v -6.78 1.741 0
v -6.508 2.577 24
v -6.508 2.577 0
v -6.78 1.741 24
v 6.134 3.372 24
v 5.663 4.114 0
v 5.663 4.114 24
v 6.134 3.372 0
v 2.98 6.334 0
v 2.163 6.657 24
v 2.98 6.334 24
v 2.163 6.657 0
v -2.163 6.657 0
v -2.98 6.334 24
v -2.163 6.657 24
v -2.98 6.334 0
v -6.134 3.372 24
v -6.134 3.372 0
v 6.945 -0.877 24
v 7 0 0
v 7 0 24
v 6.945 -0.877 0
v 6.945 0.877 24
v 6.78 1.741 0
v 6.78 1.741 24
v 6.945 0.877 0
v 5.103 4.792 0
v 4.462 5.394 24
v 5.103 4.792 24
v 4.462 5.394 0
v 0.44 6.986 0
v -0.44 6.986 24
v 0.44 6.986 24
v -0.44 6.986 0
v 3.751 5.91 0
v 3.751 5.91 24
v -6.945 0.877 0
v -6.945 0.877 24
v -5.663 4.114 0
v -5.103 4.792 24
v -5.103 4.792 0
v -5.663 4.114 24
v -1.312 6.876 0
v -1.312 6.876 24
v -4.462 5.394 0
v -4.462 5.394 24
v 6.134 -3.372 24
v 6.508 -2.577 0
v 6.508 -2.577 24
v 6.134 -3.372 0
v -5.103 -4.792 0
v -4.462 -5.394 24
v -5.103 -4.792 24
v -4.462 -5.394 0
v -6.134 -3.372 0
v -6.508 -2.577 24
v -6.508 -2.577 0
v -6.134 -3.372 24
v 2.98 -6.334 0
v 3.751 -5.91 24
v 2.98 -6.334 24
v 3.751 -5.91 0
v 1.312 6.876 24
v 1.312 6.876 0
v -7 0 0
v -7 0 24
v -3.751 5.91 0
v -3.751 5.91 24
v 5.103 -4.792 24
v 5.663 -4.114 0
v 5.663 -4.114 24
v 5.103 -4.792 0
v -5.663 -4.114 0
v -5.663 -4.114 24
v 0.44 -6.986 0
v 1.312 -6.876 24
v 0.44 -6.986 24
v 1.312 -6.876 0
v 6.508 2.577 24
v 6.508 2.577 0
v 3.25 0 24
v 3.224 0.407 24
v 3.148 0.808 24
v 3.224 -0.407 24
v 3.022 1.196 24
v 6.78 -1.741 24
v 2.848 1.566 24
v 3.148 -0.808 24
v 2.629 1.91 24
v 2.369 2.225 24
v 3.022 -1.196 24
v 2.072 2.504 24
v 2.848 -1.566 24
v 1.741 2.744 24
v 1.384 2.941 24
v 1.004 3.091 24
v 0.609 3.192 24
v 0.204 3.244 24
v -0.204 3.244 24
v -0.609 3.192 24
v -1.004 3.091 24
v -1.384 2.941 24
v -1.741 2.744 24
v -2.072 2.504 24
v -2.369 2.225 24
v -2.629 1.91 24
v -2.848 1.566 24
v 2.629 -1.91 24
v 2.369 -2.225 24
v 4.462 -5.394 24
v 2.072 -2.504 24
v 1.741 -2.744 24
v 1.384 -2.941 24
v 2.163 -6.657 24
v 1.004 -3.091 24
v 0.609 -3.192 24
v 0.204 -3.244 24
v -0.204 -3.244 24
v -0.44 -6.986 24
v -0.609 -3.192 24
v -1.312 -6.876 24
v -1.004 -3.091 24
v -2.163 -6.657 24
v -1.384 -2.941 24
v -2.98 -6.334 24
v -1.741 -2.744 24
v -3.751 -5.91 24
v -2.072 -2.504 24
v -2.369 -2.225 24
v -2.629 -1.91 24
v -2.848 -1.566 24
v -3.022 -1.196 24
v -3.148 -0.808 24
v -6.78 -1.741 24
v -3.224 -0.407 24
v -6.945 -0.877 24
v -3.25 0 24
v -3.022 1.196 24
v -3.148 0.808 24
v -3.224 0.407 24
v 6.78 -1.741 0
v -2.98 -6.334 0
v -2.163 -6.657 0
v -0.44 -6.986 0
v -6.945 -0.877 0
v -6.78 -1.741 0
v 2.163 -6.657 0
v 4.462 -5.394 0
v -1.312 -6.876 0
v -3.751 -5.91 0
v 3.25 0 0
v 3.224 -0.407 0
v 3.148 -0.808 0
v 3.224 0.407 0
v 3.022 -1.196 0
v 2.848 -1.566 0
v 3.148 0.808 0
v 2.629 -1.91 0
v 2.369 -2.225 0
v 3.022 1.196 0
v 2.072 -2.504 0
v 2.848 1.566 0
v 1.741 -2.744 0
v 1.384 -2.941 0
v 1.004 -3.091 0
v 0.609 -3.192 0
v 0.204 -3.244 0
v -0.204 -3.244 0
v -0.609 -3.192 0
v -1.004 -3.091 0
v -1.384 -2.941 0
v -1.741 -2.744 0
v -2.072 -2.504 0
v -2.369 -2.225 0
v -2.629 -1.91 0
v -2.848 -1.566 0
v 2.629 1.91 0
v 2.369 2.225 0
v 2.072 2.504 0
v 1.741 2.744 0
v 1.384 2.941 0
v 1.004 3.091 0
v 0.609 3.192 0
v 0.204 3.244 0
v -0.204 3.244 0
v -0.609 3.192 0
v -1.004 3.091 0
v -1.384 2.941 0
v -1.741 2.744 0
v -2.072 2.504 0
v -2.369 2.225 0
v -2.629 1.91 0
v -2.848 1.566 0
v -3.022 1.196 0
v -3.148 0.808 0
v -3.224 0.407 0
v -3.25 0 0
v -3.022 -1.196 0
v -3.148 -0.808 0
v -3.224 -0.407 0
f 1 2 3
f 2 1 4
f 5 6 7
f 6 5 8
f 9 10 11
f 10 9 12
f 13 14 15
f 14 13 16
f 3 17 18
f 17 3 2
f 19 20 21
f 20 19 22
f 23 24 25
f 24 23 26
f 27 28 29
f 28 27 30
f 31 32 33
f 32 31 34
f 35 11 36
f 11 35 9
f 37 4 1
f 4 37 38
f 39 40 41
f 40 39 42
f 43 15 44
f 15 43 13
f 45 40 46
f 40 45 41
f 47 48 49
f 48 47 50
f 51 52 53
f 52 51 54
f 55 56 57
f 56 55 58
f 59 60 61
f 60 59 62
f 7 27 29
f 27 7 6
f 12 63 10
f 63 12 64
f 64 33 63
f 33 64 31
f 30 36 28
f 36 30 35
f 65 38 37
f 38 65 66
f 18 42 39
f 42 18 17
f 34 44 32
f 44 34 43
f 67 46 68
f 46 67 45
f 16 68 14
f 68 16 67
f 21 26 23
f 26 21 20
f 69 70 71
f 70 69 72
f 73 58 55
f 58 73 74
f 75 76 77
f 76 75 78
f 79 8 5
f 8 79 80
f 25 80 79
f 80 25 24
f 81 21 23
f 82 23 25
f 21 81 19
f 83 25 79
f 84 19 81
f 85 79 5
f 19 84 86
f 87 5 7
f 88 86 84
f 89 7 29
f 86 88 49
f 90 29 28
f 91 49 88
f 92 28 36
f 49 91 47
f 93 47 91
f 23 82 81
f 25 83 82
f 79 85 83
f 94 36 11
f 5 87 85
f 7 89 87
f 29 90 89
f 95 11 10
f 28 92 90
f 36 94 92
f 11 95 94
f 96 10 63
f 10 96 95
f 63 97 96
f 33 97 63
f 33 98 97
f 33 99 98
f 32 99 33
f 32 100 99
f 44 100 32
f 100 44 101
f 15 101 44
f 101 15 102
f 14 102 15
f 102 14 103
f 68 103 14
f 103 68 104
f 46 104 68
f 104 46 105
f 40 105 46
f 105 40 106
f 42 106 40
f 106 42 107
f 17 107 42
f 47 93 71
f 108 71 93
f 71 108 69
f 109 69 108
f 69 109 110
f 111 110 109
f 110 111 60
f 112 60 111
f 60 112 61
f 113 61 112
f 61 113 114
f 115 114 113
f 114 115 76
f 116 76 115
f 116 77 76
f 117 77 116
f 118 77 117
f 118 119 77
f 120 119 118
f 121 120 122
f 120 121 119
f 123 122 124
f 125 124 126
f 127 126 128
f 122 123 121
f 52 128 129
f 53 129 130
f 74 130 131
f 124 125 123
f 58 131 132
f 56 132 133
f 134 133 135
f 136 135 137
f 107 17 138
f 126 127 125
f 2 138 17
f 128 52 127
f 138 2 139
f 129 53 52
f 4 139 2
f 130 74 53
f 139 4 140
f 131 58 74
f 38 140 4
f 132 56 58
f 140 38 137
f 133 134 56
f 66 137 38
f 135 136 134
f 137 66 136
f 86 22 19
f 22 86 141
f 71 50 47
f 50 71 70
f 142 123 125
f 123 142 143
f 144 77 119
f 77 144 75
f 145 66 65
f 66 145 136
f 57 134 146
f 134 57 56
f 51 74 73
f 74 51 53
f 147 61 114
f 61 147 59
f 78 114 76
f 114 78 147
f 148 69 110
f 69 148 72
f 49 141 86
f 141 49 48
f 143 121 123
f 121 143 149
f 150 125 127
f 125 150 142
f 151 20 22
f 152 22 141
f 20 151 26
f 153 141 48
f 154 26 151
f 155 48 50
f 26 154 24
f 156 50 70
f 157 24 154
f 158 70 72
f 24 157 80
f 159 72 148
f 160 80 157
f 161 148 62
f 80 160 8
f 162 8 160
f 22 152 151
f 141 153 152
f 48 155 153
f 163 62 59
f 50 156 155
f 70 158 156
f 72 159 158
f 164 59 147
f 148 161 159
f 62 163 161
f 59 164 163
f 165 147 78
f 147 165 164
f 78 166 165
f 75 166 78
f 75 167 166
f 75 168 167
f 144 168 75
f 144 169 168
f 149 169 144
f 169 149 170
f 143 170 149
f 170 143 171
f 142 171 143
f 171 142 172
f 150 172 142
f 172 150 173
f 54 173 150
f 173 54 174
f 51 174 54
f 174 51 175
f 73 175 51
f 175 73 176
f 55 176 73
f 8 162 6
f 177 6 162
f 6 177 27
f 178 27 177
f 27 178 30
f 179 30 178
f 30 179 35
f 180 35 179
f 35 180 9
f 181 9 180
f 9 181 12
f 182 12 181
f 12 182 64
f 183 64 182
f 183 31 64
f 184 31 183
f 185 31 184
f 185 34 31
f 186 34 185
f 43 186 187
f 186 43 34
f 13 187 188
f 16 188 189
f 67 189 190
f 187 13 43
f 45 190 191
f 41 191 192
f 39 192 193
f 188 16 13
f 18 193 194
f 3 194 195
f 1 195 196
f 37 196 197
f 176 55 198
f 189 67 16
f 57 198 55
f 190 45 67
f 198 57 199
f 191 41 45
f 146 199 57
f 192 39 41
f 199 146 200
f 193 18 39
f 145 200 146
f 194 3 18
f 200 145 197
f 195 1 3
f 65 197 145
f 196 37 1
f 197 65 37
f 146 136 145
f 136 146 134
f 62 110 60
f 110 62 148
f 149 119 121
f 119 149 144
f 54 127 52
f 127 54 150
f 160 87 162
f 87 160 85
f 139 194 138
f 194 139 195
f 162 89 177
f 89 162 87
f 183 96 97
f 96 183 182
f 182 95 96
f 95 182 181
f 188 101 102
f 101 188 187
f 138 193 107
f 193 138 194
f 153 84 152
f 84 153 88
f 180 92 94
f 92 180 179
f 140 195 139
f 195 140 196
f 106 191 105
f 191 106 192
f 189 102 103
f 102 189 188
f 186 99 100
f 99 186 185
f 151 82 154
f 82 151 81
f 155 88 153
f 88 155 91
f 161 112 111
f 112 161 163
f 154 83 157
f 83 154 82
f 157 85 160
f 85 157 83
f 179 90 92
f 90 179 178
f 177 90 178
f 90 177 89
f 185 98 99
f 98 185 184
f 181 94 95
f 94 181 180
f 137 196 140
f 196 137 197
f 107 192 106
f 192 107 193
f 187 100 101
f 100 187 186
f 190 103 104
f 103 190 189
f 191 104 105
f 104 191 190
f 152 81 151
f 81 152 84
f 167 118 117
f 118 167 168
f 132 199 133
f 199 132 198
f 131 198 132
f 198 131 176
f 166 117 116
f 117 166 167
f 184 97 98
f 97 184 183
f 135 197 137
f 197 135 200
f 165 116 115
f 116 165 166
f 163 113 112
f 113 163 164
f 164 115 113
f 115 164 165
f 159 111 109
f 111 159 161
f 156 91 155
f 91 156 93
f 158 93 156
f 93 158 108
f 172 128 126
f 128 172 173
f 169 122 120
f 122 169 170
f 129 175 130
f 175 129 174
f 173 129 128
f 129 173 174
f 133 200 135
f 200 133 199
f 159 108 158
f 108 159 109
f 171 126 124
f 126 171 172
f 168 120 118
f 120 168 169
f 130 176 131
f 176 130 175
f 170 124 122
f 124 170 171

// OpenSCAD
$fn = 50;


difference() {
	union() {
		cylinder(h = 24, r = 7.0000000000);
	}
	union() {
		translate(v = [0, 0, -100]) {
			cylinder(h = 200, r = 3.2500000000);
		}
	}
}
